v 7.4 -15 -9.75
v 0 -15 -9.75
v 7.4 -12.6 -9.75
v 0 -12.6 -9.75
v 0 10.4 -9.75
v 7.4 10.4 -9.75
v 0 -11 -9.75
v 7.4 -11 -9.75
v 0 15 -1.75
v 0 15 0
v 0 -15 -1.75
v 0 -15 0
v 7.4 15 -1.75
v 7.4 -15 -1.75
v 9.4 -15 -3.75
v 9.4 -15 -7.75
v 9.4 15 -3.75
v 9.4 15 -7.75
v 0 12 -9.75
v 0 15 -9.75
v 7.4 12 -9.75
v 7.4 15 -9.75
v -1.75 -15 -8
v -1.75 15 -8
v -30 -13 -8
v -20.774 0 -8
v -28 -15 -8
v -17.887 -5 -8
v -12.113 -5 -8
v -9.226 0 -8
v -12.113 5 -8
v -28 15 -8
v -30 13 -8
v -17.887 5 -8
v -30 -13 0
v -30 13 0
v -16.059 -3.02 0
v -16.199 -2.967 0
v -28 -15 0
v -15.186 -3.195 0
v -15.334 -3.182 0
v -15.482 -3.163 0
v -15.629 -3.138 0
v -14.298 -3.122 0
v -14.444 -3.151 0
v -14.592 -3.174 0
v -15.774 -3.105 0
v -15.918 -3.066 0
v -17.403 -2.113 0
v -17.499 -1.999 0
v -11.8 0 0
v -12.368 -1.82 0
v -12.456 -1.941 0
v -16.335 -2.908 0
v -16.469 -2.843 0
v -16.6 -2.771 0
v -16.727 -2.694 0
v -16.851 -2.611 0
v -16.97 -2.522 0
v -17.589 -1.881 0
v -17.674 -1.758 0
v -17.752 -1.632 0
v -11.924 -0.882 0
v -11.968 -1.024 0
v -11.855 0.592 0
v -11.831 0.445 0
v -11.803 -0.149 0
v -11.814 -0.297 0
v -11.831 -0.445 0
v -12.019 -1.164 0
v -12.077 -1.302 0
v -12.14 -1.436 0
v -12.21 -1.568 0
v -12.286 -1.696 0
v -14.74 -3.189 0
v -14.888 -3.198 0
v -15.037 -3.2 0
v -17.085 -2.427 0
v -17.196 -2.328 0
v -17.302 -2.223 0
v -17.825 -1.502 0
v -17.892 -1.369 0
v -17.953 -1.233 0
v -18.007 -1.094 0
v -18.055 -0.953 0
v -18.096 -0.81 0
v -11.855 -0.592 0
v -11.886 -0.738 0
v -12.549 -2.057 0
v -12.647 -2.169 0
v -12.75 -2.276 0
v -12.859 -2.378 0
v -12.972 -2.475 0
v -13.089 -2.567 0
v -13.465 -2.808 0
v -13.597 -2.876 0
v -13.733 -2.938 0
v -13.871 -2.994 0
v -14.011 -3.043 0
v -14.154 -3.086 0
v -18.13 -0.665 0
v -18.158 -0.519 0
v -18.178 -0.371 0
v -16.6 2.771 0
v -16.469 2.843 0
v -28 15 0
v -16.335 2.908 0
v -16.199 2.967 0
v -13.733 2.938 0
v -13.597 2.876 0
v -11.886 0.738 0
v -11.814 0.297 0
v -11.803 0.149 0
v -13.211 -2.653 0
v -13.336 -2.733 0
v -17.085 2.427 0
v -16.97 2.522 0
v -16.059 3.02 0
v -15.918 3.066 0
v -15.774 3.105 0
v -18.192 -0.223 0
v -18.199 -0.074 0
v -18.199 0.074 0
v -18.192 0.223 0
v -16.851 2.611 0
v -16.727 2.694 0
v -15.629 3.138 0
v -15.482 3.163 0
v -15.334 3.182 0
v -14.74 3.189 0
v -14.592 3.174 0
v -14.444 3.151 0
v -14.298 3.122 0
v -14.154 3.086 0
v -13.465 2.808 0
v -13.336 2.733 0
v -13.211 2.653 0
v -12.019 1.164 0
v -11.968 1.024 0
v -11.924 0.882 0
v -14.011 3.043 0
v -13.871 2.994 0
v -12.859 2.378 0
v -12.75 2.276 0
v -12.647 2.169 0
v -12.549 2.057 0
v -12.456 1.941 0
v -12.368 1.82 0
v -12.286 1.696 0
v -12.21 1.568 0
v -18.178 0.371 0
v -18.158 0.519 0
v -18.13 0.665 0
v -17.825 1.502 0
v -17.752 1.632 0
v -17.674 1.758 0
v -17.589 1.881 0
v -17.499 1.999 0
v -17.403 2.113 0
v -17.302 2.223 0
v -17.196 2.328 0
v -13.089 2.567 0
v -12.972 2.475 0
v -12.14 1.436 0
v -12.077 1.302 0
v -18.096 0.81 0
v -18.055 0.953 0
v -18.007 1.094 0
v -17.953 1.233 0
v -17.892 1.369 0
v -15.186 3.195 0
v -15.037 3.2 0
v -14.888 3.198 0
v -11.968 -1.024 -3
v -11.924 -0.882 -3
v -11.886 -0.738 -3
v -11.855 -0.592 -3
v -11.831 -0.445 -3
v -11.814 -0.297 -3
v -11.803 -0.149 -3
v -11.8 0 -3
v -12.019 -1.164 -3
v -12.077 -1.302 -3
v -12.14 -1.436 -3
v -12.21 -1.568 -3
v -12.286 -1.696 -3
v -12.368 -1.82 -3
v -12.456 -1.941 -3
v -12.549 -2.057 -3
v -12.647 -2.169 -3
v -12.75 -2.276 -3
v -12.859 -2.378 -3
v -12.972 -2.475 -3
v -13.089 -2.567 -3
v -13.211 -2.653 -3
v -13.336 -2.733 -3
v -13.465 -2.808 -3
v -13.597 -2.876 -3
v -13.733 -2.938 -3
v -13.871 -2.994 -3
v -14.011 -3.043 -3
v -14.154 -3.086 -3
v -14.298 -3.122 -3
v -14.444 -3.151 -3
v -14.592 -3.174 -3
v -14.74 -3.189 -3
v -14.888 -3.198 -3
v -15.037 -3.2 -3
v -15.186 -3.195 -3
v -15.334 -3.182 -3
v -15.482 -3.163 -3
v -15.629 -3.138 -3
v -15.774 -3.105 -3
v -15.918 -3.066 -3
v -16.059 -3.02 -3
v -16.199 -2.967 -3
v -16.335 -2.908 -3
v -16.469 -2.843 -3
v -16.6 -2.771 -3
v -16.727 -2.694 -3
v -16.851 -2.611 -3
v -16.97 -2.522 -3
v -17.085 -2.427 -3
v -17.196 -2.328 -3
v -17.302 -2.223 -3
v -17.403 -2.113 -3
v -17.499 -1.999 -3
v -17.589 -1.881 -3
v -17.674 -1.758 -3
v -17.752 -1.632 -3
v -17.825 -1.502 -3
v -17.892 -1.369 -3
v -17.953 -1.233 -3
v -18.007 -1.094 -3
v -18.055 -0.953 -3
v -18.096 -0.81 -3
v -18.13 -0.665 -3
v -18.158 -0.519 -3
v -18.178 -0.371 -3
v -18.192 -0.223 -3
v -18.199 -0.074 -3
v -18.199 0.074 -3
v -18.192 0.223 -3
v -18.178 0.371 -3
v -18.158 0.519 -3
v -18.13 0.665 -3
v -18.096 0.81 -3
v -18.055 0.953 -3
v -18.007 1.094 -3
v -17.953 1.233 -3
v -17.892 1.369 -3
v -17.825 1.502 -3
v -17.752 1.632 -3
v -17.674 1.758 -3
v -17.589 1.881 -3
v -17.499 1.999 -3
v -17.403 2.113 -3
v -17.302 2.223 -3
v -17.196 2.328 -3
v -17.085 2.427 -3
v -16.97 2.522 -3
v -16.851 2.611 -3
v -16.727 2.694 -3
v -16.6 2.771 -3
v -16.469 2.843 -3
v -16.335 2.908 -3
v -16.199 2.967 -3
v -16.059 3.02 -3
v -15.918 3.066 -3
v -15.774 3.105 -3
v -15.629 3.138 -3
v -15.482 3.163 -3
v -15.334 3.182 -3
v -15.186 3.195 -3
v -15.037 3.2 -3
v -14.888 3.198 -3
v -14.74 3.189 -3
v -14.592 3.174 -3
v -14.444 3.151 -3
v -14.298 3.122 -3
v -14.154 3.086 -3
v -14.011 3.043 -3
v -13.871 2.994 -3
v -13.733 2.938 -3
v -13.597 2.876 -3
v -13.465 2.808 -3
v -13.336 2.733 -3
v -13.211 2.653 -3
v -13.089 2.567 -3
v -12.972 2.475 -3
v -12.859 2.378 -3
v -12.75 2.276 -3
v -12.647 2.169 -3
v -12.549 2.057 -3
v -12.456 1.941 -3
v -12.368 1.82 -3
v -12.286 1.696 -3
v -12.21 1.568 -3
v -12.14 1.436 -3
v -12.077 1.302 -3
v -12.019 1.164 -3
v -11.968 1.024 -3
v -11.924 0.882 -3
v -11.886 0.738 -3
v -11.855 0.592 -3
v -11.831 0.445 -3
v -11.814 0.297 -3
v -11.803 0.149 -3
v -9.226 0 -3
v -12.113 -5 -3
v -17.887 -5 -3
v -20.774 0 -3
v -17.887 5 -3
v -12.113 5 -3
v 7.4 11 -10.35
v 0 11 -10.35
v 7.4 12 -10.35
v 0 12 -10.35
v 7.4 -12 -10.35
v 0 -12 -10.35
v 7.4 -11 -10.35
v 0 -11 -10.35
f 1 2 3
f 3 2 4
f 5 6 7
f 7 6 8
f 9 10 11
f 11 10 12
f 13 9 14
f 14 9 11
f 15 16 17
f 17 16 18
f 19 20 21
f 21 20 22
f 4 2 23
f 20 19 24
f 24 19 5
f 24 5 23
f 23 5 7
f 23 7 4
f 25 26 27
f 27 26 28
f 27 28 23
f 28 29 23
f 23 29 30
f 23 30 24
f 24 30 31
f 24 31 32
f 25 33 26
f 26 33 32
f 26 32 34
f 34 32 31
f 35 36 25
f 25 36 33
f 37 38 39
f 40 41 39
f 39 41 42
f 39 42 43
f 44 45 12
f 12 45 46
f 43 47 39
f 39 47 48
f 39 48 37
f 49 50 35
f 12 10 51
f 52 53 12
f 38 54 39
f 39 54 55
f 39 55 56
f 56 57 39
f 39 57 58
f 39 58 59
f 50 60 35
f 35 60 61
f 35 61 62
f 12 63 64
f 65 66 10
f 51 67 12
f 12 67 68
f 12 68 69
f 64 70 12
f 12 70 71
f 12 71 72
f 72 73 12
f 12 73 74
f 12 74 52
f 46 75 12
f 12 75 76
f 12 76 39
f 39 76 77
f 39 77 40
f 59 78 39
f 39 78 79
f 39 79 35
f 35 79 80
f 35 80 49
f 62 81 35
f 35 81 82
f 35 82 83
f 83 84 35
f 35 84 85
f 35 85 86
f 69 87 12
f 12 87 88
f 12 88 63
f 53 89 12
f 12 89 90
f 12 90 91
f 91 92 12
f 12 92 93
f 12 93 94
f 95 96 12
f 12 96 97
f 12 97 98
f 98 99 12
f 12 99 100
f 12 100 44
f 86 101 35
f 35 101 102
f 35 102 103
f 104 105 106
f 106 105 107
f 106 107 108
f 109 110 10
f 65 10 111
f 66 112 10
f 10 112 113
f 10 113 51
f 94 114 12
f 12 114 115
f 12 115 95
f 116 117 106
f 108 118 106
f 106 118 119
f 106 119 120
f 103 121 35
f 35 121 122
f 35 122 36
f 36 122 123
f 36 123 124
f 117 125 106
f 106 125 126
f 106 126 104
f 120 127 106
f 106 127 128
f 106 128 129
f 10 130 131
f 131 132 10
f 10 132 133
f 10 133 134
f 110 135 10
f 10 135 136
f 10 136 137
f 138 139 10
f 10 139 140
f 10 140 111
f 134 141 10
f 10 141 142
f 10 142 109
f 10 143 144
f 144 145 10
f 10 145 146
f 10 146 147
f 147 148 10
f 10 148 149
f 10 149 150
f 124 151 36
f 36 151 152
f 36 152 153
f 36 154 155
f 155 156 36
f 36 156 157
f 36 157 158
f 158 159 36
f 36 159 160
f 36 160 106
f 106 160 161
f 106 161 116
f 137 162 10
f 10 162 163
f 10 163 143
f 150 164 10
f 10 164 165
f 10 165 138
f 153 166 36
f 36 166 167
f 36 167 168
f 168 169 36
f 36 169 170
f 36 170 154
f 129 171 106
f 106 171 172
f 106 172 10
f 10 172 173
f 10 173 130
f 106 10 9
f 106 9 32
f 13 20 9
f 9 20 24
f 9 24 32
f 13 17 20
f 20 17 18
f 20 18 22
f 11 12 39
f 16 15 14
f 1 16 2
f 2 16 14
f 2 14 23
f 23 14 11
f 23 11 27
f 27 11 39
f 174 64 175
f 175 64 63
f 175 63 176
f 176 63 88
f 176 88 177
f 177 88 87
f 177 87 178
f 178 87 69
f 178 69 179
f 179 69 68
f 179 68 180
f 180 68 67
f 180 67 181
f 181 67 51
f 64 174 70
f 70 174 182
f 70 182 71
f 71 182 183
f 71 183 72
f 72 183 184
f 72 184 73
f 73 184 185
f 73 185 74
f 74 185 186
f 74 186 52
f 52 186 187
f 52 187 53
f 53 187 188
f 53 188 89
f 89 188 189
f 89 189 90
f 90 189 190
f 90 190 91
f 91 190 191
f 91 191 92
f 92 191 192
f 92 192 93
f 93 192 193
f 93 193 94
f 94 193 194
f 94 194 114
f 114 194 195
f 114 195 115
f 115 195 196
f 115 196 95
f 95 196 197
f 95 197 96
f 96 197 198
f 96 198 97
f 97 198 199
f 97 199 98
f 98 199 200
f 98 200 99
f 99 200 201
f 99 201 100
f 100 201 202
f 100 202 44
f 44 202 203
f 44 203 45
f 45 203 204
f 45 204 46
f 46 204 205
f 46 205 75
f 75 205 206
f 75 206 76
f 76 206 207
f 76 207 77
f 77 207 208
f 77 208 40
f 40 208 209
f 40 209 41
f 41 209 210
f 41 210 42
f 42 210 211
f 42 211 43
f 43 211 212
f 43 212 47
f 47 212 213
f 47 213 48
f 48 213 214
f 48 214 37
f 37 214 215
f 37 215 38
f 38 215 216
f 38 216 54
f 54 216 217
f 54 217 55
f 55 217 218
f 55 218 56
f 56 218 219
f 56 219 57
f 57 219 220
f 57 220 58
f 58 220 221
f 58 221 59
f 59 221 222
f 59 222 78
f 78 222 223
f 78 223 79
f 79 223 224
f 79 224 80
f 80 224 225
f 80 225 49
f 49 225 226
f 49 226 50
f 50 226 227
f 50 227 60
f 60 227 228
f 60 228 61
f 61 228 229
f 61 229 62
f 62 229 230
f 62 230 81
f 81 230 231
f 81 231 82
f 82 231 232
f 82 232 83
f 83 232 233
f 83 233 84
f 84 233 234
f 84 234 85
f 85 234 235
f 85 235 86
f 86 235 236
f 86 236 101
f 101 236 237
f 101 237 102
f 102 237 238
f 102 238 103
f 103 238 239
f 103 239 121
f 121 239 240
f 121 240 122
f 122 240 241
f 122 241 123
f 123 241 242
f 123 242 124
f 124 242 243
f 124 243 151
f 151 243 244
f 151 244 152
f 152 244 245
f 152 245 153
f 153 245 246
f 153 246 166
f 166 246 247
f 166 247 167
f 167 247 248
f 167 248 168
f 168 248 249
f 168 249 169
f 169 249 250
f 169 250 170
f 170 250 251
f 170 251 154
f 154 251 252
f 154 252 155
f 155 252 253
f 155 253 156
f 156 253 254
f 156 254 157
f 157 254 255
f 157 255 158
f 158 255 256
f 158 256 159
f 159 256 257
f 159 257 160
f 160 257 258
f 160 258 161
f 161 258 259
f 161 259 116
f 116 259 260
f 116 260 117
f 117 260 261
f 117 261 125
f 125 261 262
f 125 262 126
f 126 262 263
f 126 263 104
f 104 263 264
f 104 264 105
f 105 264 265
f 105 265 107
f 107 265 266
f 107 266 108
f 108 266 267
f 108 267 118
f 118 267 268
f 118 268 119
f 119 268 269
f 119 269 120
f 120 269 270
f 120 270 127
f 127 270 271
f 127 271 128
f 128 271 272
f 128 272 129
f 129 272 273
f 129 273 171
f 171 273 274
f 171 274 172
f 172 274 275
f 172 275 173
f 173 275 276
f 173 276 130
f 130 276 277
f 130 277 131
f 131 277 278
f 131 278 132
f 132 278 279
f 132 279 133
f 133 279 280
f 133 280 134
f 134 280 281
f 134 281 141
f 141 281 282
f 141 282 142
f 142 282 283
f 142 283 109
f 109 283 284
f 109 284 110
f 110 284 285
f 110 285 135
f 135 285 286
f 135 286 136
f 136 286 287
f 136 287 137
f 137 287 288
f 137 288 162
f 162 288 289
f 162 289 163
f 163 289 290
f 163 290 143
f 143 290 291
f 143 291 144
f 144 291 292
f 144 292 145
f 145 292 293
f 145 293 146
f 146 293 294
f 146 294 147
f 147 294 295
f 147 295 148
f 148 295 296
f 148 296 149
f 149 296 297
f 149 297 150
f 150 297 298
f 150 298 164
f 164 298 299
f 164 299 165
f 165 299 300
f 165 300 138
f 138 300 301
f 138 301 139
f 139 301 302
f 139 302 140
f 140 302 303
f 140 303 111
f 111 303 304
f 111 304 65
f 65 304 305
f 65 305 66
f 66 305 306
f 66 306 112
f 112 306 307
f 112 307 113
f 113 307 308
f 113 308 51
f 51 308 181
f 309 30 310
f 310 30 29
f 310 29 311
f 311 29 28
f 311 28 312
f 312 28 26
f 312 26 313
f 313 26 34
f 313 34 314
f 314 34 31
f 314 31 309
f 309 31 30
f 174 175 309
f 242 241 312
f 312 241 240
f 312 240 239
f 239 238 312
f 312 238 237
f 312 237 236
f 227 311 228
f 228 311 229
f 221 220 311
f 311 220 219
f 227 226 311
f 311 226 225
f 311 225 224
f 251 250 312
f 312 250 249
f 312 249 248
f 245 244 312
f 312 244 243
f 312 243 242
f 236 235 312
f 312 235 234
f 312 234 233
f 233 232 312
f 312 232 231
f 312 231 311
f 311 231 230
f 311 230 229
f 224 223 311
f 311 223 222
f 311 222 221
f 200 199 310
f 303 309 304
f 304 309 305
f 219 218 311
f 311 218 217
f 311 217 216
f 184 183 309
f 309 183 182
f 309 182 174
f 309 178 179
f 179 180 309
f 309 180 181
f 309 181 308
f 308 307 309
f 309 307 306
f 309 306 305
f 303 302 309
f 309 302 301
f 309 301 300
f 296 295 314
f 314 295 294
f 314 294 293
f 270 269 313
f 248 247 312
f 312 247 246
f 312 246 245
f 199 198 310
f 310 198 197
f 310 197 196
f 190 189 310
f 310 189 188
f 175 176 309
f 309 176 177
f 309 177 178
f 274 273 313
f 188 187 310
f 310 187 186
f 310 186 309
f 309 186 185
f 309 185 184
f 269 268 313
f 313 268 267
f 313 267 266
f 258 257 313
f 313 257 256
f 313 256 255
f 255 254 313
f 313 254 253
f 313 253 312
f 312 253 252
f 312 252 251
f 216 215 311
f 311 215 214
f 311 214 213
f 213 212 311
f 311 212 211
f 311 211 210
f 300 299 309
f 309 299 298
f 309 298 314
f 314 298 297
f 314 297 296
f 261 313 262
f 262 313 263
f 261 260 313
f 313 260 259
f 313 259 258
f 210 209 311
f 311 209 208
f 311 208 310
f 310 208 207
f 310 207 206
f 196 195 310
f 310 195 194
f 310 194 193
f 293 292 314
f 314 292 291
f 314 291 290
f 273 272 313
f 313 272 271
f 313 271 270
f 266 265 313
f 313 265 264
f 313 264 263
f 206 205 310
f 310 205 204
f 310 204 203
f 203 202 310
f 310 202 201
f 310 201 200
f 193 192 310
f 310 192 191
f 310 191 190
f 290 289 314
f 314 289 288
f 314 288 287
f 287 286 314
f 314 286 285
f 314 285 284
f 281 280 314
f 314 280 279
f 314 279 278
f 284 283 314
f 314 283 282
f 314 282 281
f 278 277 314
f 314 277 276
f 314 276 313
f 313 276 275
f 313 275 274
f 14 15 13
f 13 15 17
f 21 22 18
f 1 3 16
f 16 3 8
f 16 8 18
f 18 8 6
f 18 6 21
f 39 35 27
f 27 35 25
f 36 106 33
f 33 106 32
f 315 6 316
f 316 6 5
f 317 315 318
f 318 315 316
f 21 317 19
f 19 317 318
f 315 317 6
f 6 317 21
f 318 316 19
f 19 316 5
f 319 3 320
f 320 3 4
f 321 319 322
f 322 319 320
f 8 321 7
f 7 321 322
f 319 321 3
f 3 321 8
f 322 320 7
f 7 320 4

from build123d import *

# Parameters (mm, degrees)
SALIENTE_EXTRUIR1_DEPTH = 15
CROQUIS2_R              = 3.2
CORTAR_EXTRUIR1_DEPTH   = 10.75
CORTAR_EXTRUIR2_START   = -3
CORTAR_EXTRUIR2_DEPTH   = 7.75
CHAFL_N1_SIZE           = 2
SALIENTE_EXTRUIR3_DEPTH = 7.4


with BuildPart() as part:
    # Croquis1 → Saliente-Extruir1 (new body, symmetric)
    with BuildSketch(Plane(origin=(0, 0, 0), x_dir=(1, 0, 0), z_dir=(0, 1, 0))):
        Polygon((0, 0), (-30, 0), (-30, 8), (-1.75, 8), (0, 9.75), (9.4, 9.75), (9.4, 1.75), (0, 1.75), align=None)
    extrude(amount=SALIENTE_EXTRUIR1_DEPTH, both=True)

    # Croquis2 → Cortar-Extruir1 (cut, through all)
    with BuildSketch(Plane.XY):
        with Locations((-15, 0)):
            Circle(CROQUIS2_R)
    extrude(amount=-CORTAR_EXTRUIR1_DEPTH, mode=Mode.SUBTRACT)

    # Croquis3 → Cortar-Extruir2 (cut, through all)
    with BuildSketch(Plane.XY.offset(CORTAR_EXTRUIR2_START)):
        Polygon((-9.226497308, 0), (-12.113248654, 5), (-17.886751346, 5), (-20.773502692, 0), (-17.886751346, -5), (-12.113248654, -5), align=None)
    extrude(amount=-CORTAR_EXTRUIR2_DEPTH, mode=Mode.SUBTRACT)

    # Chaflán1
    chafl_n1_edges = [part.edges().sort_by_distance(p)[0] for p in [
        (9.4, 0, -9.75),
        (9.4, 0, -1.75),
        (-30, 15, -4),
        (-30, -15, -4),
    ]]
    chamfer(chafl_n1_edges, length=CHAFL_N1_SIZE)

    # Croquis5 → Saliente-Extruir3 (add)
    with BuildSketch(Plane(origin=(0, 0, 0), x_dir=(0, 0, -1), z_dir=(1, 0, 0))):
        Polygon((9.75, 12), (10.35, 12), (10.35, 11), (9.75, 10.4), align=None)
        Polygon((9.75, -11), (10.35, -11), (10.35, -12), (9.75, -12.6), align=None)
    extrude(amount=SALIENTE_EXTRUIR3_DEPTH)


solid = part.part
